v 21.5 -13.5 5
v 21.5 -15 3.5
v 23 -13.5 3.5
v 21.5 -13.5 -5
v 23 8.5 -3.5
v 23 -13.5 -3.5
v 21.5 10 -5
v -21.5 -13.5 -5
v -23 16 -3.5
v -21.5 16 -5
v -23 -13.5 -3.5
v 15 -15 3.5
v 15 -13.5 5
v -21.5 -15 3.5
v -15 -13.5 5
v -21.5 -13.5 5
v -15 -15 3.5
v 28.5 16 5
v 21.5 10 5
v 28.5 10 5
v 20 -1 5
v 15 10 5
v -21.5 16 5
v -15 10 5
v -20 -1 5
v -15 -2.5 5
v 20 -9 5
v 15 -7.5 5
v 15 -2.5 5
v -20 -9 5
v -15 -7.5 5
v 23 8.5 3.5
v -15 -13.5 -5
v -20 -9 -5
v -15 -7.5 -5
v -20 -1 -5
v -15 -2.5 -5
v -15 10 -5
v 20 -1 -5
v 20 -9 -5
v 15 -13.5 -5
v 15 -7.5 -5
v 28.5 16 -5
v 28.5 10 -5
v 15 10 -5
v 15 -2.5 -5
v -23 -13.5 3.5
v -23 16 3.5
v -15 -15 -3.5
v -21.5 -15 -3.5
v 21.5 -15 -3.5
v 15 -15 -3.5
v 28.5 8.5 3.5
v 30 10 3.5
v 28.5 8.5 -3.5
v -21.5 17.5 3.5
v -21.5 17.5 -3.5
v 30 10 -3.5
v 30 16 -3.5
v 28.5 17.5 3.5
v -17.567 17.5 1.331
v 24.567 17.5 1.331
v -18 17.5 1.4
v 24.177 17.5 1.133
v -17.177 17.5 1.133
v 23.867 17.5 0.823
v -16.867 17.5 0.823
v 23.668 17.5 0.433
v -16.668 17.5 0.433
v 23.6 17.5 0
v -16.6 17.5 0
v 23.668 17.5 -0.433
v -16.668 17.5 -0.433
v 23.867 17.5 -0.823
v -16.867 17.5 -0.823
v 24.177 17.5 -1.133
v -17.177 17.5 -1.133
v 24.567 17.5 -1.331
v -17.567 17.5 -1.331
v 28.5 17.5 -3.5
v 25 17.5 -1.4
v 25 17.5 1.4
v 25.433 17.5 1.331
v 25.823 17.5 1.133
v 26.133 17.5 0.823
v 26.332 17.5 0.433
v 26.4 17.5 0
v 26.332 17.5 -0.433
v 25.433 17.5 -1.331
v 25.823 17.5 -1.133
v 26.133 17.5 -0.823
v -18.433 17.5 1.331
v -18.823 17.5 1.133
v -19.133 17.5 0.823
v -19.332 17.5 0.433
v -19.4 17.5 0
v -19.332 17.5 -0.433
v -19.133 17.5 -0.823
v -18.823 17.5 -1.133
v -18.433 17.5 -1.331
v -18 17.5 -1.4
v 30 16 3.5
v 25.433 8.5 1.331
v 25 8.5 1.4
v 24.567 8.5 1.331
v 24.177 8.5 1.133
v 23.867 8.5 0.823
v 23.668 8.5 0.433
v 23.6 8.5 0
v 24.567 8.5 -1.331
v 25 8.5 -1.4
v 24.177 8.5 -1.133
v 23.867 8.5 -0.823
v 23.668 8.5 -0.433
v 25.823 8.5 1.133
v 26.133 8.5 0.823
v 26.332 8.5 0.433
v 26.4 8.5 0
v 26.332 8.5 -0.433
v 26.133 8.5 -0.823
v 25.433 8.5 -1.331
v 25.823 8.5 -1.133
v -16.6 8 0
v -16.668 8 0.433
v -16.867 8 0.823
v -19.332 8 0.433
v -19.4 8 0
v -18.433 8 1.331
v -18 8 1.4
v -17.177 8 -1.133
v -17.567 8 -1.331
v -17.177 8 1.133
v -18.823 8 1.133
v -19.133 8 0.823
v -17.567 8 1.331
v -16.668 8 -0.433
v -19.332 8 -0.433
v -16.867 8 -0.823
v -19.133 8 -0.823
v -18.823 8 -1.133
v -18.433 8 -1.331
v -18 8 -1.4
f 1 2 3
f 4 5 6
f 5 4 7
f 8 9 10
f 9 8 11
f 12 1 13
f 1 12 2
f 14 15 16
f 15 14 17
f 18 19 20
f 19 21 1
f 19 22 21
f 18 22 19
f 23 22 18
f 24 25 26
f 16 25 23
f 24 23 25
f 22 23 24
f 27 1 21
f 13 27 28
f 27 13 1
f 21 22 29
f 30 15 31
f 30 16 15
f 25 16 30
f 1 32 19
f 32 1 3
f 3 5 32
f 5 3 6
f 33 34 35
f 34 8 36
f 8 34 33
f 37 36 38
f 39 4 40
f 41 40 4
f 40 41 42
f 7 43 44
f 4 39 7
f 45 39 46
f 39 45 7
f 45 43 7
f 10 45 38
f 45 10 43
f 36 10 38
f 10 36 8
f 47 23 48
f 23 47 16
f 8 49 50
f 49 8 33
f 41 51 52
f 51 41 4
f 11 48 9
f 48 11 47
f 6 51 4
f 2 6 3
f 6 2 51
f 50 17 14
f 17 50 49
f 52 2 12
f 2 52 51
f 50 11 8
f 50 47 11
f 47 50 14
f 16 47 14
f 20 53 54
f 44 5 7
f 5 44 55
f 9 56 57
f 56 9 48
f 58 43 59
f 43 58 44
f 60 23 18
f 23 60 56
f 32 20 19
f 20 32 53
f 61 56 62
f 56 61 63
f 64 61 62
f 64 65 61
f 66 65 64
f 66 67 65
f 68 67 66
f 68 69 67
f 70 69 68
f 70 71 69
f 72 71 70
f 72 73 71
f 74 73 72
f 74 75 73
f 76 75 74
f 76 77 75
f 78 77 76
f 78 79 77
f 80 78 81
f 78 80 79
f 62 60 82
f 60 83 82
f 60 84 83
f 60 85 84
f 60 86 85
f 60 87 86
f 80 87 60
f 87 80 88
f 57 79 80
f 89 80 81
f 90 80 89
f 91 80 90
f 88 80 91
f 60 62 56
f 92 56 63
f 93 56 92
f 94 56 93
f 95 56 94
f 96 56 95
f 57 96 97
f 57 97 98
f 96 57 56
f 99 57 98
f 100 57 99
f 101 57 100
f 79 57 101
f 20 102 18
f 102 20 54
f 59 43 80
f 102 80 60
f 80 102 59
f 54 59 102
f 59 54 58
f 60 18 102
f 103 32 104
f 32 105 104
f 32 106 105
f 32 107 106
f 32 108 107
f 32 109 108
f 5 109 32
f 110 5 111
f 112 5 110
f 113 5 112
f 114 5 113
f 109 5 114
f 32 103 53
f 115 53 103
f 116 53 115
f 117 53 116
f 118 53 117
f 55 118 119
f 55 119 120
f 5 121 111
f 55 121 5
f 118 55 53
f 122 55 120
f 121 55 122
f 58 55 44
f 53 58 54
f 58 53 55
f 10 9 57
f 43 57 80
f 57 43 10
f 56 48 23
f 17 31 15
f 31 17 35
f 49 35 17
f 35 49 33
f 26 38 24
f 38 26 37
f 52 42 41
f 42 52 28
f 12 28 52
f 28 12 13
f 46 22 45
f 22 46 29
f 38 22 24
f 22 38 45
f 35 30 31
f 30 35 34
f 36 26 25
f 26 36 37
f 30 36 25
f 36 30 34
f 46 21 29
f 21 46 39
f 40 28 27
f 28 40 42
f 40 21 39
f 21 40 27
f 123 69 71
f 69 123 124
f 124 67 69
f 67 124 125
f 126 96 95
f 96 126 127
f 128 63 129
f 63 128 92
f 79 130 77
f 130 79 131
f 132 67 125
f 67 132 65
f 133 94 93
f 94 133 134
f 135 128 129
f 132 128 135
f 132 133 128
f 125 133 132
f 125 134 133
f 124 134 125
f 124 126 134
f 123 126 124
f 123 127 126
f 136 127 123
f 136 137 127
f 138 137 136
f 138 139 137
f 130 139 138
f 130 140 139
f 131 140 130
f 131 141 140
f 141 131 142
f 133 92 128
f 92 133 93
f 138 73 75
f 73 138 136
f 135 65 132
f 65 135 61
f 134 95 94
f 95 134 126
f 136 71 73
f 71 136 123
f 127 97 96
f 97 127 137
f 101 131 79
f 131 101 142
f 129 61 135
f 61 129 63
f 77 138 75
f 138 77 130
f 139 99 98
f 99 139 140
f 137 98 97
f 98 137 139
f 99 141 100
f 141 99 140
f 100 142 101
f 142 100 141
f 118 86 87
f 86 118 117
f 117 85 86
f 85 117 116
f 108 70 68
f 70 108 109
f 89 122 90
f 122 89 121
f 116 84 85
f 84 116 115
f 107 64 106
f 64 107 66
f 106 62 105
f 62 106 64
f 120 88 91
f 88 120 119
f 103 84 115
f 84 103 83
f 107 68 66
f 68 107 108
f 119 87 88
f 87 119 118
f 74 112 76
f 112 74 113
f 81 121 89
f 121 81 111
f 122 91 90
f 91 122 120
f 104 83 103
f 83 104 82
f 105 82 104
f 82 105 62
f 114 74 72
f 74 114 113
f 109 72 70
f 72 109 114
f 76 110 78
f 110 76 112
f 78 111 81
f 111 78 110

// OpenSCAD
// file: ../../Dollo/NEW_long_ties/globals.scad
/*
Most things in this file is represented as one millimeter, so keep that in mind while changing things.
Some of the setting are not mm but at variables that you can set, such as 2*x=2x and you are setting what x is.
I will try to specify when things are variables and not exact measurements.
*/

// printer slop
slop = 0.15;

obj_leg = 30;
leg_length = 5.5;
small_number = 0.001;
metal_core_rode_global = 5;


///////////////// number of holes /////////////////////
z_hole_number = 8;
other_holes = 8;

///////////////// Pins /////////////////////

//pins that poke out
ball_size = 10;
pin_height = 20;
pin_diameter = 6;


//holes
hole_ball_size = ball_size;
hole_pin_height = pin_height;
hole_pin_diameter = pin_diameter;

///////////////// Z THINGS /////////////////////

berring_slot_width = 7.5;
berring_slot_depth = 6.5;
metal_core_rode = 5;

///////////////// X THINGS /////////////////////

//male dove tails
male_dove_max_width=8;
male_dove_min_width=5;
male_dove_depth=5;
male_dove_height=obj_leg/2;

function scaled_male_dove_max_width() = male_dove_max_width - slop;
function scaled_male_dove_min_width() = male_dove_min_width - slop;
function scaled_male_dove_depth() = male_dove_depth - slop;

//female dove tails, this is found on the y mounts
girl_max_width=11;
girl_min_width=5;
girl_depth=5;
girl_height=obj_leg;


///////////////// Y THINGS /////////////////////
/*
The Y is so normal that all of those global variables at the top should change all of the setting in it, this section is set her incase there are variables set in the future development of this project.
*/

// stepper
motor_side_length = 43.2;
motor_bolt_hole_distance = 31;
motor_center_hole = 23;
motor_shaft_dia = 5;
motor_shaft_hole_dia = 5+2*slop;

// bolts etc.
bolt_hole_dia = 3+2*slop;
bolt_head_hole_dia = 5.8;

m4_bolt_hole_dia = 4+2*slop;
m4_bolt_head_hole_dia = 6.8+2*slop;


m3_nut_side = 5.65;
m3_nut_height = 2.3;
m4_nut_side = 6.85;
m4_nut_height = 3.1;

// threaded rod
lifter_rod_diam = 9.86;
hole_threaded_rod = lifter_rod_diam+2*slop;

// for the extensions
metal_rod_size = 9;
// main file
use <../../Dollo/NEW_long_ties/include.scad>;

// for this case: https://www.thingiverse.com/thing:2599773/files

module octopi_frame_adapter() {
    difference() {
        union() {
            chamfered_cube(30+16,30,10,1.5,center=true);
            translate([3.5,30/2-2,0]) chamfered_cube(53,9,10,1.5,center=true);
        }
        translate([0,-5,0]) cube([30,30,12],center=true);
        translate([-15,-5,-20/2]) rotate([0,0,90]) male_dovetail(20);
        translate([15,-5,-20/2]) rotate([0,0,-90]) male_dovetail(20);
        
        translate([-43/2+3.5,18,0]) rotate([90,0,0]) cylinder(d=2.8,h=10,$fn=20);
        translate([43/2+3.5,18,0]) rotate([90,0,0]) cylinder(d=2.8,h=10,$fn=20);
   }
}

octopi_frame_adapter();
